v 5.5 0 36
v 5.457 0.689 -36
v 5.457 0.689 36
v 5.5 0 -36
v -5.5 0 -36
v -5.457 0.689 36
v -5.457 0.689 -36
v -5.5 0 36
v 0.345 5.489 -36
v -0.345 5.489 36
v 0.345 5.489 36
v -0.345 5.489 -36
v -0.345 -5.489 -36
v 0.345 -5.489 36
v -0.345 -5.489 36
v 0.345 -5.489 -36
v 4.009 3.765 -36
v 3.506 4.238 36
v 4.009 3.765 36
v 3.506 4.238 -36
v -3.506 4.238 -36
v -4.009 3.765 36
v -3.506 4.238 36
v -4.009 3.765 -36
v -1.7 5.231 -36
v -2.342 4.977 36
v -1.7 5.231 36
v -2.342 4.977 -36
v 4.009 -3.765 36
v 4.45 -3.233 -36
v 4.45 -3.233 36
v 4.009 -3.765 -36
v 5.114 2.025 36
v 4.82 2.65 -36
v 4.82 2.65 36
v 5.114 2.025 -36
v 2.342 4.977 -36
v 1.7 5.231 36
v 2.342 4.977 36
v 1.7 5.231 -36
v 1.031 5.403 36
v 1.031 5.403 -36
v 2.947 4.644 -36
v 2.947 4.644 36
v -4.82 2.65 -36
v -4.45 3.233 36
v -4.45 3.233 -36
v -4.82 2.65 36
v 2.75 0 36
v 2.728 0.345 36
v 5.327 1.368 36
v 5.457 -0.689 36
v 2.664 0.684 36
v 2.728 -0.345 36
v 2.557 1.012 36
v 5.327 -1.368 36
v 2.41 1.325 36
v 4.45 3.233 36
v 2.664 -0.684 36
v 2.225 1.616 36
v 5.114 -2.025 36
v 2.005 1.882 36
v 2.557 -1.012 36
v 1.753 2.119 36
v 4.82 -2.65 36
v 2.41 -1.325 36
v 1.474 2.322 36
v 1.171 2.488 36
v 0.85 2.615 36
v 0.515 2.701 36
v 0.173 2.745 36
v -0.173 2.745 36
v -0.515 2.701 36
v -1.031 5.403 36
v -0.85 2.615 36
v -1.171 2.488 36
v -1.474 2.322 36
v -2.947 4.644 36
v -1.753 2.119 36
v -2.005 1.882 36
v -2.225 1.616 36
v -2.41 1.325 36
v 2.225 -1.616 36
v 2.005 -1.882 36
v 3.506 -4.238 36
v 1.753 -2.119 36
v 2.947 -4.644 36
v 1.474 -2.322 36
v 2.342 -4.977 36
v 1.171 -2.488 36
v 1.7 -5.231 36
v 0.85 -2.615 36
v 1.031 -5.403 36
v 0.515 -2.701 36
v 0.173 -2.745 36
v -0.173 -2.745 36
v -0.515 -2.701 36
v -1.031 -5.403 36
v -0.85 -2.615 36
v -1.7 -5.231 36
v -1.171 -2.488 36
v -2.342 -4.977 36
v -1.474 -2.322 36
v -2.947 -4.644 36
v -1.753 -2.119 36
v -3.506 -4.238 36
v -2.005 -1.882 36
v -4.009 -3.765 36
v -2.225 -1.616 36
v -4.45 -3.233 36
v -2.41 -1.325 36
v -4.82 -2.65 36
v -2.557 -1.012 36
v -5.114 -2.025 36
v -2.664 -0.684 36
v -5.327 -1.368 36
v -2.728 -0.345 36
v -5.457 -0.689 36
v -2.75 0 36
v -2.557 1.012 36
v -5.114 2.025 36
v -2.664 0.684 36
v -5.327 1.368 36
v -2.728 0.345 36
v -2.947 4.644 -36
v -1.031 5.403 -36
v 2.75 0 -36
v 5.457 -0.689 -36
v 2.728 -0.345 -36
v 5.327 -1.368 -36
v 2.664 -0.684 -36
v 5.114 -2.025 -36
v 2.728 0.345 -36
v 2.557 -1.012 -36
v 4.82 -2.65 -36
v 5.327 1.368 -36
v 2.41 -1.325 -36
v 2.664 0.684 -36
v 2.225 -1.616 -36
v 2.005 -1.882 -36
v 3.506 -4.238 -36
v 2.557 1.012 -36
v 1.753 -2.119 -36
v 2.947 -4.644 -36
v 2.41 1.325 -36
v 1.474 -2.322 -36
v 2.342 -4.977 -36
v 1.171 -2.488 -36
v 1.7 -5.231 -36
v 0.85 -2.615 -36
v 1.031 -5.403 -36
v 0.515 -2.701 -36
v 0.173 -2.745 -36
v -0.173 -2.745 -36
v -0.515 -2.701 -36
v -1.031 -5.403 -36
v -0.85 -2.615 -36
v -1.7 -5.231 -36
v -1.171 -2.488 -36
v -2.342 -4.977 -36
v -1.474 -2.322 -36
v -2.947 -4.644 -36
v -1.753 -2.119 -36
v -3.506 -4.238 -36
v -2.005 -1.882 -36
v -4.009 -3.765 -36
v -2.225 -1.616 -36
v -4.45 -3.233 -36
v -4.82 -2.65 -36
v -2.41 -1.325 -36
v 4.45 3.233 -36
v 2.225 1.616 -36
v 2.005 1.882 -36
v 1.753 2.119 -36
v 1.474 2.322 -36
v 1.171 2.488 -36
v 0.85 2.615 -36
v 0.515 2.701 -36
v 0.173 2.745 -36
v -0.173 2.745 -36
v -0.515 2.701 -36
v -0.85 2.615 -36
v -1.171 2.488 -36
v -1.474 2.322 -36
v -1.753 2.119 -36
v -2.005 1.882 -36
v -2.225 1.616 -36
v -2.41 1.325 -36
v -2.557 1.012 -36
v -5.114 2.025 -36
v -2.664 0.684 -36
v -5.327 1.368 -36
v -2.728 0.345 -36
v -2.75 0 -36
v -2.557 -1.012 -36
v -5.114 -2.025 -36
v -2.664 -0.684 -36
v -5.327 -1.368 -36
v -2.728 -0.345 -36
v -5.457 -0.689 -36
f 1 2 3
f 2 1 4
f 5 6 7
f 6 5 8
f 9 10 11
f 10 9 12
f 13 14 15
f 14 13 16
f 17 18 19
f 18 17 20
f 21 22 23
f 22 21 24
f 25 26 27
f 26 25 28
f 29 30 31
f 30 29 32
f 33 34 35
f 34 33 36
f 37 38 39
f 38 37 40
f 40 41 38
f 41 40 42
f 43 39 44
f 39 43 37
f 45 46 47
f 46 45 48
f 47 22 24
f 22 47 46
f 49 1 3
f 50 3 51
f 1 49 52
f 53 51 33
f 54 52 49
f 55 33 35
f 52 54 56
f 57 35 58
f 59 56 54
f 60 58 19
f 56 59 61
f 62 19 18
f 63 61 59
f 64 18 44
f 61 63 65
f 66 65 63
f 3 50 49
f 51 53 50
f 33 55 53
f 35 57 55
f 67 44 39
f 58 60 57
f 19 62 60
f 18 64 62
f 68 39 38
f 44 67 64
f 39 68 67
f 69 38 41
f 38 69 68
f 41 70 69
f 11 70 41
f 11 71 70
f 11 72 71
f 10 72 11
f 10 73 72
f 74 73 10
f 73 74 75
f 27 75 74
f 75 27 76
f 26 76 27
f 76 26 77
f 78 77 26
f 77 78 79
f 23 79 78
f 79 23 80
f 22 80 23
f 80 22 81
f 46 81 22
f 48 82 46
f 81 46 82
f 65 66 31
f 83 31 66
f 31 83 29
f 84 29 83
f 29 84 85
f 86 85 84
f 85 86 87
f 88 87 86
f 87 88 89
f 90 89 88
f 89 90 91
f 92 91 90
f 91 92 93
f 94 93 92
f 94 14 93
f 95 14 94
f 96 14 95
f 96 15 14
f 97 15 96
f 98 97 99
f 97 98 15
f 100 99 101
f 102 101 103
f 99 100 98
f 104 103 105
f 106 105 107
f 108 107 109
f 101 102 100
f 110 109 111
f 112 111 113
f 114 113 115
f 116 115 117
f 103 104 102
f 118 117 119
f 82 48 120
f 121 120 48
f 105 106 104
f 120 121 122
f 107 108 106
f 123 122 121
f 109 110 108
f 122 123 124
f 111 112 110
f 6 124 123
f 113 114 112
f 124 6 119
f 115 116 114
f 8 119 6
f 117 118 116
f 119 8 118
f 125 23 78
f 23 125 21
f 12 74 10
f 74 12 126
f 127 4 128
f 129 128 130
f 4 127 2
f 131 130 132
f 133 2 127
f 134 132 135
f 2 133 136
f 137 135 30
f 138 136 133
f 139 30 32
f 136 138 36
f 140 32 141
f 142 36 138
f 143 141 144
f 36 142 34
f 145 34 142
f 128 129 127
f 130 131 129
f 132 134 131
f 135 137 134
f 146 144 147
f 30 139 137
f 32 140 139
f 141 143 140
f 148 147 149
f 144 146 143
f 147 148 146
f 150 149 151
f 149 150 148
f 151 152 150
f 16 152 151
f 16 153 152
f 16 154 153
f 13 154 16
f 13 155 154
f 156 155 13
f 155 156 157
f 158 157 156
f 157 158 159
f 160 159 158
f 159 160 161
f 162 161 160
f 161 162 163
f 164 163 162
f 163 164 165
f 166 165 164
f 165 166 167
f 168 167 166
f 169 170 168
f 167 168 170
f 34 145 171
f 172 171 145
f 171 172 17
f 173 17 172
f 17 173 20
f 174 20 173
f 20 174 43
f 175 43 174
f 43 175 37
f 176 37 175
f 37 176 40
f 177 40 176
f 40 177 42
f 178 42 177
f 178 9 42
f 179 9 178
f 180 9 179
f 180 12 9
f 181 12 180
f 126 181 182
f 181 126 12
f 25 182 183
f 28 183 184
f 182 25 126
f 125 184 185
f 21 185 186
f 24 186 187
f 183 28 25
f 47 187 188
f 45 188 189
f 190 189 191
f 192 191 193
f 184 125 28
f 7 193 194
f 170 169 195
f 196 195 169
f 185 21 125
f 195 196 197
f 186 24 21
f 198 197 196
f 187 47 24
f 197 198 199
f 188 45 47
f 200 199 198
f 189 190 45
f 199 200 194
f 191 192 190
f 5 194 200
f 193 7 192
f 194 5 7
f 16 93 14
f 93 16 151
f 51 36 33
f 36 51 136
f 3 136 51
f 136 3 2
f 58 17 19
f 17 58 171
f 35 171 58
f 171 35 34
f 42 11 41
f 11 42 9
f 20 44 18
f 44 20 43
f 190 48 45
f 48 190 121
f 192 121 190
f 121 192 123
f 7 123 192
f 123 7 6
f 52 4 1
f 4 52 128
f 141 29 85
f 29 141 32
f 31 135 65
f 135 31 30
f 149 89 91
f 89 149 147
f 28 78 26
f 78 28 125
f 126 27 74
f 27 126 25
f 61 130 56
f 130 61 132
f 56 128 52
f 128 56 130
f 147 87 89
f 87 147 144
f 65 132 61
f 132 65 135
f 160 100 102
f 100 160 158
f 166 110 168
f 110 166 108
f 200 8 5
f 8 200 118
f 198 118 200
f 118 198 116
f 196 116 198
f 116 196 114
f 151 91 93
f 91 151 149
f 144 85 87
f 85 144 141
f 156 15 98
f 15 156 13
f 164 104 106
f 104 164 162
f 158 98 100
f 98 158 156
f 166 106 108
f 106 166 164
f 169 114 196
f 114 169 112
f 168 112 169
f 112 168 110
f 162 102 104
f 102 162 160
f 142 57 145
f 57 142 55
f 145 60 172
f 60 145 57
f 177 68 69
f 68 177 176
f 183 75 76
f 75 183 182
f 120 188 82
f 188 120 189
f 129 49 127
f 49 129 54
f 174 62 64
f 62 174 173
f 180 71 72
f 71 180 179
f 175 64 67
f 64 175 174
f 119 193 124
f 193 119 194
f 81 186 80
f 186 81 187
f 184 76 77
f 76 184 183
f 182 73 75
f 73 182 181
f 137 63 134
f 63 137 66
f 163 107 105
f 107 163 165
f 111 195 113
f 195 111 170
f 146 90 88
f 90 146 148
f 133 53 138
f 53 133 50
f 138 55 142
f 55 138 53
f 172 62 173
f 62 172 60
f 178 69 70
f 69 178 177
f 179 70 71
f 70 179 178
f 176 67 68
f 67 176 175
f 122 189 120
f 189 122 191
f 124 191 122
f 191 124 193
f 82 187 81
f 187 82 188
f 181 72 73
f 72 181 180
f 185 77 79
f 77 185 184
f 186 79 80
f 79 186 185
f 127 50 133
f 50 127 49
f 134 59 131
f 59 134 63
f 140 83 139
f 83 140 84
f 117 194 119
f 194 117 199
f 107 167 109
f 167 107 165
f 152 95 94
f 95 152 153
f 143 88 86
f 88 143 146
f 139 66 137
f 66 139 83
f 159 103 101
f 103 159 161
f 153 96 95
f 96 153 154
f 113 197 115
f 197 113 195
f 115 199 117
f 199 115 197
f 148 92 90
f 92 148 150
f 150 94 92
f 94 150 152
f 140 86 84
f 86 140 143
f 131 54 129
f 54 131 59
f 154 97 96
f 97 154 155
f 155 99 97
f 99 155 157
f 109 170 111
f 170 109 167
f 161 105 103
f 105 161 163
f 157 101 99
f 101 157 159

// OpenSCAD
$fn = 50;


difference() {
	union() {
		translate(v = [0, 0, -36.0000000000]) {
			cylinder(h = 72, r = 5.5000000000);
		}
	}
	union() {
		translate(v = [0, 0, -100.0000000000]) {
			cylinder(h = 200, r = 2.7500000000);
		}
	}
}
